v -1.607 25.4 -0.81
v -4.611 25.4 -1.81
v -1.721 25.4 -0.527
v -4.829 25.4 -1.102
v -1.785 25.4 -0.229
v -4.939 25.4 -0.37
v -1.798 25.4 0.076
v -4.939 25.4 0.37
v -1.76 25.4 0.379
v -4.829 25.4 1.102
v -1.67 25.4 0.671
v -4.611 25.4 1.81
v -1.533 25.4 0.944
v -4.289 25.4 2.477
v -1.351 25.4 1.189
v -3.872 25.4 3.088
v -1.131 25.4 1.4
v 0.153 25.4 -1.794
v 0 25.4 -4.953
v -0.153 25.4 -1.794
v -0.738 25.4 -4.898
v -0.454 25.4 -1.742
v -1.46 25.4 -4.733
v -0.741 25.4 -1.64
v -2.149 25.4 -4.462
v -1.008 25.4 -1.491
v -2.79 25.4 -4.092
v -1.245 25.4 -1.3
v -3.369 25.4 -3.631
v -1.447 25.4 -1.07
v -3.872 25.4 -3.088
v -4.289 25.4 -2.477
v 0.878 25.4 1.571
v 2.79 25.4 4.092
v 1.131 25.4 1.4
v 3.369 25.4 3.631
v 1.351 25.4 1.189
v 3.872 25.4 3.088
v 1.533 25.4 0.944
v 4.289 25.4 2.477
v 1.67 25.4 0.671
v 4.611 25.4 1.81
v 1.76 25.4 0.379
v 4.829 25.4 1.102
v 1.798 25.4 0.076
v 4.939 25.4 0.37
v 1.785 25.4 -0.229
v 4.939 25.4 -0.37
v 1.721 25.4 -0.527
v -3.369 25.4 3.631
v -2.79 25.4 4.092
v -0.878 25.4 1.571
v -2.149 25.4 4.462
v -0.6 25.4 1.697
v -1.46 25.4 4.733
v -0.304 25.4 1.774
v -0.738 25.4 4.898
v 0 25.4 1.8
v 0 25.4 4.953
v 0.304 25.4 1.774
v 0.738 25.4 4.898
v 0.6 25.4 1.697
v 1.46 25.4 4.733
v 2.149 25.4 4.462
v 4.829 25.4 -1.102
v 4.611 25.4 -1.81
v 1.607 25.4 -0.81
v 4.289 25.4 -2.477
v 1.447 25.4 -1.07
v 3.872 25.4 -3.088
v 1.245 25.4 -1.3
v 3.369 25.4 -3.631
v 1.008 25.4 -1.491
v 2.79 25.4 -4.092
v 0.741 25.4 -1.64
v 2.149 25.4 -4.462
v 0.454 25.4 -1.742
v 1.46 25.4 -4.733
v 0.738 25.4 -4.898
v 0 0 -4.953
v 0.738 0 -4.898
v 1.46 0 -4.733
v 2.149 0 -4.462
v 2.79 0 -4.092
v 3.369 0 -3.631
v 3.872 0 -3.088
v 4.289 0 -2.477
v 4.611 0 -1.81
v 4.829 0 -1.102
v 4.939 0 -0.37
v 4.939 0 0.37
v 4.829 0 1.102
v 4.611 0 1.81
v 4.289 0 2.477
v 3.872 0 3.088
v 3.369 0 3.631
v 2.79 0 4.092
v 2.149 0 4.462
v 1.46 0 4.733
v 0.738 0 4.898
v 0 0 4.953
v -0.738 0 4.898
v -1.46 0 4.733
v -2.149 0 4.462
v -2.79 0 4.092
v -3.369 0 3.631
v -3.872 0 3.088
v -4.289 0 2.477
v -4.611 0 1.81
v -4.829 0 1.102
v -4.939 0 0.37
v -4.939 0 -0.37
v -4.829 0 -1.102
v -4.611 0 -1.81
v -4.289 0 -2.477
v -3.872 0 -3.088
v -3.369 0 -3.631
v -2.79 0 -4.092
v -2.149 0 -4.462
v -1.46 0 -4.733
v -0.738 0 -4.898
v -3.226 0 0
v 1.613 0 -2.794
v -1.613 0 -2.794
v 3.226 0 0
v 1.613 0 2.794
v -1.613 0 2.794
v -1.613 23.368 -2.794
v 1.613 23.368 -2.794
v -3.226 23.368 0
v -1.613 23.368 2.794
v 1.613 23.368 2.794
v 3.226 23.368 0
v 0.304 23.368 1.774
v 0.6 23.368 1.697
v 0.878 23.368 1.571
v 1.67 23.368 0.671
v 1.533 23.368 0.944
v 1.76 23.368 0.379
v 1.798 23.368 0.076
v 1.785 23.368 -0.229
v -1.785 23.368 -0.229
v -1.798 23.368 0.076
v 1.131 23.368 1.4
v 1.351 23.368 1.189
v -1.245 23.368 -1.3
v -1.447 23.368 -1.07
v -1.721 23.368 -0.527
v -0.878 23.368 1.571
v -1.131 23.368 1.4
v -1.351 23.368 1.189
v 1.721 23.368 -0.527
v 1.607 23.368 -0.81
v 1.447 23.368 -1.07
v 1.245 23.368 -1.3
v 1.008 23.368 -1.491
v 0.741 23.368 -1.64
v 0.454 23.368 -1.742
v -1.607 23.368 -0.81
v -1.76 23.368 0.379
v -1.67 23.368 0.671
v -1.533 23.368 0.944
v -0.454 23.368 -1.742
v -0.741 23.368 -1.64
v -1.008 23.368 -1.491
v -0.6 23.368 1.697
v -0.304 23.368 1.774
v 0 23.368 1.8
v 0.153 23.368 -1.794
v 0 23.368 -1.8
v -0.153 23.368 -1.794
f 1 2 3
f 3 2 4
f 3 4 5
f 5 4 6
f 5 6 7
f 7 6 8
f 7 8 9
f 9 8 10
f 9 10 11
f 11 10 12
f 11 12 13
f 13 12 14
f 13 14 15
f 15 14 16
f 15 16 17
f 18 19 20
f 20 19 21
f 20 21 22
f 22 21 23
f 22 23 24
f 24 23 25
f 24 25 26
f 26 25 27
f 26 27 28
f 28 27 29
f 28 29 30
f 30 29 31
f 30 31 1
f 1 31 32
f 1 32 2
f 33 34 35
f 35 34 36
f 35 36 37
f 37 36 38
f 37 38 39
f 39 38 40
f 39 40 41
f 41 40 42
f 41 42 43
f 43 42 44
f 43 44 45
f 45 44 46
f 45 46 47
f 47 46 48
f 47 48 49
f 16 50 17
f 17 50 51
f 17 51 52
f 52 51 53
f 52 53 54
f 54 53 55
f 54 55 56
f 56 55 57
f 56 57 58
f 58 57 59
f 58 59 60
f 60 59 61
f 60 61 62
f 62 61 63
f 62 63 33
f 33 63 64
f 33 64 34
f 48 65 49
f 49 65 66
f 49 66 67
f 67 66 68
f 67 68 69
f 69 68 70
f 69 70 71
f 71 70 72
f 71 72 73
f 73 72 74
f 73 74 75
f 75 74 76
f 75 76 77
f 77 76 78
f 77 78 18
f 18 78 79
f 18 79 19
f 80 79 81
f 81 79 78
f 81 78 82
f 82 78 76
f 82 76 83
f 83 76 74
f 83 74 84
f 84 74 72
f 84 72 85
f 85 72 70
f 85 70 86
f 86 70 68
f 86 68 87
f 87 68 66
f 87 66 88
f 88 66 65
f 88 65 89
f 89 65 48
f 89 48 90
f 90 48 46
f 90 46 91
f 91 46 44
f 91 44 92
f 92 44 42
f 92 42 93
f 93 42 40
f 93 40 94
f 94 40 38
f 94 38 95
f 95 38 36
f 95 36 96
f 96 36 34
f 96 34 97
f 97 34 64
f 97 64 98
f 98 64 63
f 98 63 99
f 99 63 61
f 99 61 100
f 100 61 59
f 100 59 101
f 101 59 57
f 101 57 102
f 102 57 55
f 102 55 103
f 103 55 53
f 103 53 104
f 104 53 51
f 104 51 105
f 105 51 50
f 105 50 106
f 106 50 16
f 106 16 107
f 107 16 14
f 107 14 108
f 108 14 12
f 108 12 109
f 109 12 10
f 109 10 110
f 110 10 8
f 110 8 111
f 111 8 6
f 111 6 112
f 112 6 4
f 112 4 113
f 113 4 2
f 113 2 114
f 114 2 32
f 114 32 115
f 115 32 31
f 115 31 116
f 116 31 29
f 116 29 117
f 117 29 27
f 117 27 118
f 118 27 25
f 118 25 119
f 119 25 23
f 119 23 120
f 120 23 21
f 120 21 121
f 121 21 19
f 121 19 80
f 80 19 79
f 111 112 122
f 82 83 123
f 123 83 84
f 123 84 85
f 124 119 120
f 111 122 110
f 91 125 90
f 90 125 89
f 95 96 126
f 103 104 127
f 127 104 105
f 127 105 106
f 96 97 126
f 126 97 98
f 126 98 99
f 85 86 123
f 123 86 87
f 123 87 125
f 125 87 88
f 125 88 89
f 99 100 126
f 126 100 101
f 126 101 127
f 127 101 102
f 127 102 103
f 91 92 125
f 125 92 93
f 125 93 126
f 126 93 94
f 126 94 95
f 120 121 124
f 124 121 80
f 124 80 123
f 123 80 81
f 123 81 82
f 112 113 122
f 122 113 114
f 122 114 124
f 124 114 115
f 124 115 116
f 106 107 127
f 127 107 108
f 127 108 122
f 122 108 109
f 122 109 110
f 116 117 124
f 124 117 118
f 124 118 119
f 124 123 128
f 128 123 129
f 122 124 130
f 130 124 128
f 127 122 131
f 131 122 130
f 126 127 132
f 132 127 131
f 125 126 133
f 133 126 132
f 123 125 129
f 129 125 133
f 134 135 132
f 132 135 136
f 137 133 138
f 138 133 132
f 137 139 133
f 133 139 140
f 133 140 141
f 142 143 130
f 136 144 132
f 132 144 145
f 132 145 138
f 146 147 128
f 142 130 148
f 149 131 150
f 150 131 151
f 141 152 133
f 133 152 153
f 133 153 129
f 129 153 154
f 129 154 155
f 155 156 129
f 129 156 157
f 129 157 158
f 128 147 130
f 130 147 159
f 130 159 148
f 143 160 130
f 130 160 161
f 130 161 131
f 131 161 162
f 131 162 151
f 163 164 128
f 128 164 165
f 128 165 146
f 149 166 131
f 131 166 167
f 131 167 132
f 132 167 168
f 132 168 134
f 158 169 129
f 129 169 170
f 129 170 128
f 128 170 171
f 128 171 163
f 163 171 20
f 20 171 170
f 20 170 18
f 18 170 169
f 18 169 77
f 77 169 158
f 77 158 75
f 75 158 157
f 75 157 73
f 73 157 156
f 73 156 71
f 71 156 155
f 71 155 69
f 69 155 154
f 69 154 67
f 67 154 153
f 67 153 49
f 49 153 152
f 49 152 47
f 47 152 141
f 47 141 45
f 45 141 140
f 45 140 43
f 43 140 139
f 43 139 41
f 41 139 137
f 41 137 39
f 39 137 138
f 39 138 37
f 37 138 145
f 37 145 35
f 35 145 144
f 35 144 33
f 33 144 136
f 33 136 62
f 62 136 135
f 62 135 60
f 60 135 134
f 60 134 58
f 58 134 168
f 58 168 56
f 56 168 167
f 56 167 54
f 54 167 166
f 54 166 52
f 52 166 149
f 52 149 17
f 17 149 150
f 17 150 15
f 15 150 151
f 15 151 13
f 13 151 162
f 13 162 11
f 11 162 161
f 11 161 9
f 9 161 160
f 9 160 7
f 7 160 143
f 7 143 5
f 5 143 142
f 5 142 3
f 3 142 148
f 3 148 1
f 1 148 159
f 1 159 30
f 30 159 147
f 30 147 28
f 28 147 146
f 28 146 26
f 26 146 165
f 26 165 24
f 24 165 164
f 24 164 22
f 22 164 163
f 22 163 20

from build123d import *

# Parameters (mm, degrees)
CUT_EXTRUDE2_DEPTH   = 23.368
M3_CLEARANCE_HOLE1_D = 3.6
SKETCH10_OUTSIDE_W   = 29.468
SKETCH10_OUTSIDE_H   = 29.468
SKETCH10_OUTSIDE_R   = 4.953
CUT_EXTRUDE3_DEPTH   = 30.033261092


with BuildPart() as part:
    # Sketch1 → Revolve1 (revolve)
    with BuildSketch(Plane(origin=(0, 0, 0), x_dir=(0, 0, -1), z_dir=(1, 0, 0))):
        Polygon((0, 25.4), (9.9441, 25.4), (9.9441, 23.368), (4.953, 23.368), (4.953, 0), (0, 0), align=None)
    revolve(axis=Axis((0, 0, 0), (0, 1, 0)))

    # Sketch4 → Cut-Extrude2 (cut)
    with BuildSketch(Plane.XZ):
        Polygon((1.613116652, -2.794), (3.226233304, 0), (1.613116652, 2.794), (-1.613116652, 2.794), (-3.226233304, 0), (-1.613116652, -2.794), align=None)
    extrude(amount=-CUT_EXTRUDE2_DEPTH, mode=Mode.SUBTRACT)

    # M3 Clearance Hole1 (through all)
    with Locations(Plane(origin=(0, 25.4, 0), x_dir=(1, 0, 0), z_dir=(0, 1, 0))):
        with Locations((-6.985, 0), (0, 0), (6.985, 0), (0, 6.985), (0, -6.985)):
            Hole(M3_CLEARANCE_HOLE1_D / 2)

    # Sketch10 outside → Cut-Extrude3 (cut, through all)
    with BuildSketch(Plane.XZ):
        Rectangle(SKETCH10_OUTSIDE_W, SKETCH10_OUTSIDE_H)
        with Locations(Location((0, 0, 0), (0, 0, 270))):
            Circle(SKETCH10_OUTSIDE_R, mode=Mode.SUBTRACT)
    extrude(amount=-CUT_EXTRUDE3_DEPTH, mode=Mode.SUBTRACT)


solid = part.part
